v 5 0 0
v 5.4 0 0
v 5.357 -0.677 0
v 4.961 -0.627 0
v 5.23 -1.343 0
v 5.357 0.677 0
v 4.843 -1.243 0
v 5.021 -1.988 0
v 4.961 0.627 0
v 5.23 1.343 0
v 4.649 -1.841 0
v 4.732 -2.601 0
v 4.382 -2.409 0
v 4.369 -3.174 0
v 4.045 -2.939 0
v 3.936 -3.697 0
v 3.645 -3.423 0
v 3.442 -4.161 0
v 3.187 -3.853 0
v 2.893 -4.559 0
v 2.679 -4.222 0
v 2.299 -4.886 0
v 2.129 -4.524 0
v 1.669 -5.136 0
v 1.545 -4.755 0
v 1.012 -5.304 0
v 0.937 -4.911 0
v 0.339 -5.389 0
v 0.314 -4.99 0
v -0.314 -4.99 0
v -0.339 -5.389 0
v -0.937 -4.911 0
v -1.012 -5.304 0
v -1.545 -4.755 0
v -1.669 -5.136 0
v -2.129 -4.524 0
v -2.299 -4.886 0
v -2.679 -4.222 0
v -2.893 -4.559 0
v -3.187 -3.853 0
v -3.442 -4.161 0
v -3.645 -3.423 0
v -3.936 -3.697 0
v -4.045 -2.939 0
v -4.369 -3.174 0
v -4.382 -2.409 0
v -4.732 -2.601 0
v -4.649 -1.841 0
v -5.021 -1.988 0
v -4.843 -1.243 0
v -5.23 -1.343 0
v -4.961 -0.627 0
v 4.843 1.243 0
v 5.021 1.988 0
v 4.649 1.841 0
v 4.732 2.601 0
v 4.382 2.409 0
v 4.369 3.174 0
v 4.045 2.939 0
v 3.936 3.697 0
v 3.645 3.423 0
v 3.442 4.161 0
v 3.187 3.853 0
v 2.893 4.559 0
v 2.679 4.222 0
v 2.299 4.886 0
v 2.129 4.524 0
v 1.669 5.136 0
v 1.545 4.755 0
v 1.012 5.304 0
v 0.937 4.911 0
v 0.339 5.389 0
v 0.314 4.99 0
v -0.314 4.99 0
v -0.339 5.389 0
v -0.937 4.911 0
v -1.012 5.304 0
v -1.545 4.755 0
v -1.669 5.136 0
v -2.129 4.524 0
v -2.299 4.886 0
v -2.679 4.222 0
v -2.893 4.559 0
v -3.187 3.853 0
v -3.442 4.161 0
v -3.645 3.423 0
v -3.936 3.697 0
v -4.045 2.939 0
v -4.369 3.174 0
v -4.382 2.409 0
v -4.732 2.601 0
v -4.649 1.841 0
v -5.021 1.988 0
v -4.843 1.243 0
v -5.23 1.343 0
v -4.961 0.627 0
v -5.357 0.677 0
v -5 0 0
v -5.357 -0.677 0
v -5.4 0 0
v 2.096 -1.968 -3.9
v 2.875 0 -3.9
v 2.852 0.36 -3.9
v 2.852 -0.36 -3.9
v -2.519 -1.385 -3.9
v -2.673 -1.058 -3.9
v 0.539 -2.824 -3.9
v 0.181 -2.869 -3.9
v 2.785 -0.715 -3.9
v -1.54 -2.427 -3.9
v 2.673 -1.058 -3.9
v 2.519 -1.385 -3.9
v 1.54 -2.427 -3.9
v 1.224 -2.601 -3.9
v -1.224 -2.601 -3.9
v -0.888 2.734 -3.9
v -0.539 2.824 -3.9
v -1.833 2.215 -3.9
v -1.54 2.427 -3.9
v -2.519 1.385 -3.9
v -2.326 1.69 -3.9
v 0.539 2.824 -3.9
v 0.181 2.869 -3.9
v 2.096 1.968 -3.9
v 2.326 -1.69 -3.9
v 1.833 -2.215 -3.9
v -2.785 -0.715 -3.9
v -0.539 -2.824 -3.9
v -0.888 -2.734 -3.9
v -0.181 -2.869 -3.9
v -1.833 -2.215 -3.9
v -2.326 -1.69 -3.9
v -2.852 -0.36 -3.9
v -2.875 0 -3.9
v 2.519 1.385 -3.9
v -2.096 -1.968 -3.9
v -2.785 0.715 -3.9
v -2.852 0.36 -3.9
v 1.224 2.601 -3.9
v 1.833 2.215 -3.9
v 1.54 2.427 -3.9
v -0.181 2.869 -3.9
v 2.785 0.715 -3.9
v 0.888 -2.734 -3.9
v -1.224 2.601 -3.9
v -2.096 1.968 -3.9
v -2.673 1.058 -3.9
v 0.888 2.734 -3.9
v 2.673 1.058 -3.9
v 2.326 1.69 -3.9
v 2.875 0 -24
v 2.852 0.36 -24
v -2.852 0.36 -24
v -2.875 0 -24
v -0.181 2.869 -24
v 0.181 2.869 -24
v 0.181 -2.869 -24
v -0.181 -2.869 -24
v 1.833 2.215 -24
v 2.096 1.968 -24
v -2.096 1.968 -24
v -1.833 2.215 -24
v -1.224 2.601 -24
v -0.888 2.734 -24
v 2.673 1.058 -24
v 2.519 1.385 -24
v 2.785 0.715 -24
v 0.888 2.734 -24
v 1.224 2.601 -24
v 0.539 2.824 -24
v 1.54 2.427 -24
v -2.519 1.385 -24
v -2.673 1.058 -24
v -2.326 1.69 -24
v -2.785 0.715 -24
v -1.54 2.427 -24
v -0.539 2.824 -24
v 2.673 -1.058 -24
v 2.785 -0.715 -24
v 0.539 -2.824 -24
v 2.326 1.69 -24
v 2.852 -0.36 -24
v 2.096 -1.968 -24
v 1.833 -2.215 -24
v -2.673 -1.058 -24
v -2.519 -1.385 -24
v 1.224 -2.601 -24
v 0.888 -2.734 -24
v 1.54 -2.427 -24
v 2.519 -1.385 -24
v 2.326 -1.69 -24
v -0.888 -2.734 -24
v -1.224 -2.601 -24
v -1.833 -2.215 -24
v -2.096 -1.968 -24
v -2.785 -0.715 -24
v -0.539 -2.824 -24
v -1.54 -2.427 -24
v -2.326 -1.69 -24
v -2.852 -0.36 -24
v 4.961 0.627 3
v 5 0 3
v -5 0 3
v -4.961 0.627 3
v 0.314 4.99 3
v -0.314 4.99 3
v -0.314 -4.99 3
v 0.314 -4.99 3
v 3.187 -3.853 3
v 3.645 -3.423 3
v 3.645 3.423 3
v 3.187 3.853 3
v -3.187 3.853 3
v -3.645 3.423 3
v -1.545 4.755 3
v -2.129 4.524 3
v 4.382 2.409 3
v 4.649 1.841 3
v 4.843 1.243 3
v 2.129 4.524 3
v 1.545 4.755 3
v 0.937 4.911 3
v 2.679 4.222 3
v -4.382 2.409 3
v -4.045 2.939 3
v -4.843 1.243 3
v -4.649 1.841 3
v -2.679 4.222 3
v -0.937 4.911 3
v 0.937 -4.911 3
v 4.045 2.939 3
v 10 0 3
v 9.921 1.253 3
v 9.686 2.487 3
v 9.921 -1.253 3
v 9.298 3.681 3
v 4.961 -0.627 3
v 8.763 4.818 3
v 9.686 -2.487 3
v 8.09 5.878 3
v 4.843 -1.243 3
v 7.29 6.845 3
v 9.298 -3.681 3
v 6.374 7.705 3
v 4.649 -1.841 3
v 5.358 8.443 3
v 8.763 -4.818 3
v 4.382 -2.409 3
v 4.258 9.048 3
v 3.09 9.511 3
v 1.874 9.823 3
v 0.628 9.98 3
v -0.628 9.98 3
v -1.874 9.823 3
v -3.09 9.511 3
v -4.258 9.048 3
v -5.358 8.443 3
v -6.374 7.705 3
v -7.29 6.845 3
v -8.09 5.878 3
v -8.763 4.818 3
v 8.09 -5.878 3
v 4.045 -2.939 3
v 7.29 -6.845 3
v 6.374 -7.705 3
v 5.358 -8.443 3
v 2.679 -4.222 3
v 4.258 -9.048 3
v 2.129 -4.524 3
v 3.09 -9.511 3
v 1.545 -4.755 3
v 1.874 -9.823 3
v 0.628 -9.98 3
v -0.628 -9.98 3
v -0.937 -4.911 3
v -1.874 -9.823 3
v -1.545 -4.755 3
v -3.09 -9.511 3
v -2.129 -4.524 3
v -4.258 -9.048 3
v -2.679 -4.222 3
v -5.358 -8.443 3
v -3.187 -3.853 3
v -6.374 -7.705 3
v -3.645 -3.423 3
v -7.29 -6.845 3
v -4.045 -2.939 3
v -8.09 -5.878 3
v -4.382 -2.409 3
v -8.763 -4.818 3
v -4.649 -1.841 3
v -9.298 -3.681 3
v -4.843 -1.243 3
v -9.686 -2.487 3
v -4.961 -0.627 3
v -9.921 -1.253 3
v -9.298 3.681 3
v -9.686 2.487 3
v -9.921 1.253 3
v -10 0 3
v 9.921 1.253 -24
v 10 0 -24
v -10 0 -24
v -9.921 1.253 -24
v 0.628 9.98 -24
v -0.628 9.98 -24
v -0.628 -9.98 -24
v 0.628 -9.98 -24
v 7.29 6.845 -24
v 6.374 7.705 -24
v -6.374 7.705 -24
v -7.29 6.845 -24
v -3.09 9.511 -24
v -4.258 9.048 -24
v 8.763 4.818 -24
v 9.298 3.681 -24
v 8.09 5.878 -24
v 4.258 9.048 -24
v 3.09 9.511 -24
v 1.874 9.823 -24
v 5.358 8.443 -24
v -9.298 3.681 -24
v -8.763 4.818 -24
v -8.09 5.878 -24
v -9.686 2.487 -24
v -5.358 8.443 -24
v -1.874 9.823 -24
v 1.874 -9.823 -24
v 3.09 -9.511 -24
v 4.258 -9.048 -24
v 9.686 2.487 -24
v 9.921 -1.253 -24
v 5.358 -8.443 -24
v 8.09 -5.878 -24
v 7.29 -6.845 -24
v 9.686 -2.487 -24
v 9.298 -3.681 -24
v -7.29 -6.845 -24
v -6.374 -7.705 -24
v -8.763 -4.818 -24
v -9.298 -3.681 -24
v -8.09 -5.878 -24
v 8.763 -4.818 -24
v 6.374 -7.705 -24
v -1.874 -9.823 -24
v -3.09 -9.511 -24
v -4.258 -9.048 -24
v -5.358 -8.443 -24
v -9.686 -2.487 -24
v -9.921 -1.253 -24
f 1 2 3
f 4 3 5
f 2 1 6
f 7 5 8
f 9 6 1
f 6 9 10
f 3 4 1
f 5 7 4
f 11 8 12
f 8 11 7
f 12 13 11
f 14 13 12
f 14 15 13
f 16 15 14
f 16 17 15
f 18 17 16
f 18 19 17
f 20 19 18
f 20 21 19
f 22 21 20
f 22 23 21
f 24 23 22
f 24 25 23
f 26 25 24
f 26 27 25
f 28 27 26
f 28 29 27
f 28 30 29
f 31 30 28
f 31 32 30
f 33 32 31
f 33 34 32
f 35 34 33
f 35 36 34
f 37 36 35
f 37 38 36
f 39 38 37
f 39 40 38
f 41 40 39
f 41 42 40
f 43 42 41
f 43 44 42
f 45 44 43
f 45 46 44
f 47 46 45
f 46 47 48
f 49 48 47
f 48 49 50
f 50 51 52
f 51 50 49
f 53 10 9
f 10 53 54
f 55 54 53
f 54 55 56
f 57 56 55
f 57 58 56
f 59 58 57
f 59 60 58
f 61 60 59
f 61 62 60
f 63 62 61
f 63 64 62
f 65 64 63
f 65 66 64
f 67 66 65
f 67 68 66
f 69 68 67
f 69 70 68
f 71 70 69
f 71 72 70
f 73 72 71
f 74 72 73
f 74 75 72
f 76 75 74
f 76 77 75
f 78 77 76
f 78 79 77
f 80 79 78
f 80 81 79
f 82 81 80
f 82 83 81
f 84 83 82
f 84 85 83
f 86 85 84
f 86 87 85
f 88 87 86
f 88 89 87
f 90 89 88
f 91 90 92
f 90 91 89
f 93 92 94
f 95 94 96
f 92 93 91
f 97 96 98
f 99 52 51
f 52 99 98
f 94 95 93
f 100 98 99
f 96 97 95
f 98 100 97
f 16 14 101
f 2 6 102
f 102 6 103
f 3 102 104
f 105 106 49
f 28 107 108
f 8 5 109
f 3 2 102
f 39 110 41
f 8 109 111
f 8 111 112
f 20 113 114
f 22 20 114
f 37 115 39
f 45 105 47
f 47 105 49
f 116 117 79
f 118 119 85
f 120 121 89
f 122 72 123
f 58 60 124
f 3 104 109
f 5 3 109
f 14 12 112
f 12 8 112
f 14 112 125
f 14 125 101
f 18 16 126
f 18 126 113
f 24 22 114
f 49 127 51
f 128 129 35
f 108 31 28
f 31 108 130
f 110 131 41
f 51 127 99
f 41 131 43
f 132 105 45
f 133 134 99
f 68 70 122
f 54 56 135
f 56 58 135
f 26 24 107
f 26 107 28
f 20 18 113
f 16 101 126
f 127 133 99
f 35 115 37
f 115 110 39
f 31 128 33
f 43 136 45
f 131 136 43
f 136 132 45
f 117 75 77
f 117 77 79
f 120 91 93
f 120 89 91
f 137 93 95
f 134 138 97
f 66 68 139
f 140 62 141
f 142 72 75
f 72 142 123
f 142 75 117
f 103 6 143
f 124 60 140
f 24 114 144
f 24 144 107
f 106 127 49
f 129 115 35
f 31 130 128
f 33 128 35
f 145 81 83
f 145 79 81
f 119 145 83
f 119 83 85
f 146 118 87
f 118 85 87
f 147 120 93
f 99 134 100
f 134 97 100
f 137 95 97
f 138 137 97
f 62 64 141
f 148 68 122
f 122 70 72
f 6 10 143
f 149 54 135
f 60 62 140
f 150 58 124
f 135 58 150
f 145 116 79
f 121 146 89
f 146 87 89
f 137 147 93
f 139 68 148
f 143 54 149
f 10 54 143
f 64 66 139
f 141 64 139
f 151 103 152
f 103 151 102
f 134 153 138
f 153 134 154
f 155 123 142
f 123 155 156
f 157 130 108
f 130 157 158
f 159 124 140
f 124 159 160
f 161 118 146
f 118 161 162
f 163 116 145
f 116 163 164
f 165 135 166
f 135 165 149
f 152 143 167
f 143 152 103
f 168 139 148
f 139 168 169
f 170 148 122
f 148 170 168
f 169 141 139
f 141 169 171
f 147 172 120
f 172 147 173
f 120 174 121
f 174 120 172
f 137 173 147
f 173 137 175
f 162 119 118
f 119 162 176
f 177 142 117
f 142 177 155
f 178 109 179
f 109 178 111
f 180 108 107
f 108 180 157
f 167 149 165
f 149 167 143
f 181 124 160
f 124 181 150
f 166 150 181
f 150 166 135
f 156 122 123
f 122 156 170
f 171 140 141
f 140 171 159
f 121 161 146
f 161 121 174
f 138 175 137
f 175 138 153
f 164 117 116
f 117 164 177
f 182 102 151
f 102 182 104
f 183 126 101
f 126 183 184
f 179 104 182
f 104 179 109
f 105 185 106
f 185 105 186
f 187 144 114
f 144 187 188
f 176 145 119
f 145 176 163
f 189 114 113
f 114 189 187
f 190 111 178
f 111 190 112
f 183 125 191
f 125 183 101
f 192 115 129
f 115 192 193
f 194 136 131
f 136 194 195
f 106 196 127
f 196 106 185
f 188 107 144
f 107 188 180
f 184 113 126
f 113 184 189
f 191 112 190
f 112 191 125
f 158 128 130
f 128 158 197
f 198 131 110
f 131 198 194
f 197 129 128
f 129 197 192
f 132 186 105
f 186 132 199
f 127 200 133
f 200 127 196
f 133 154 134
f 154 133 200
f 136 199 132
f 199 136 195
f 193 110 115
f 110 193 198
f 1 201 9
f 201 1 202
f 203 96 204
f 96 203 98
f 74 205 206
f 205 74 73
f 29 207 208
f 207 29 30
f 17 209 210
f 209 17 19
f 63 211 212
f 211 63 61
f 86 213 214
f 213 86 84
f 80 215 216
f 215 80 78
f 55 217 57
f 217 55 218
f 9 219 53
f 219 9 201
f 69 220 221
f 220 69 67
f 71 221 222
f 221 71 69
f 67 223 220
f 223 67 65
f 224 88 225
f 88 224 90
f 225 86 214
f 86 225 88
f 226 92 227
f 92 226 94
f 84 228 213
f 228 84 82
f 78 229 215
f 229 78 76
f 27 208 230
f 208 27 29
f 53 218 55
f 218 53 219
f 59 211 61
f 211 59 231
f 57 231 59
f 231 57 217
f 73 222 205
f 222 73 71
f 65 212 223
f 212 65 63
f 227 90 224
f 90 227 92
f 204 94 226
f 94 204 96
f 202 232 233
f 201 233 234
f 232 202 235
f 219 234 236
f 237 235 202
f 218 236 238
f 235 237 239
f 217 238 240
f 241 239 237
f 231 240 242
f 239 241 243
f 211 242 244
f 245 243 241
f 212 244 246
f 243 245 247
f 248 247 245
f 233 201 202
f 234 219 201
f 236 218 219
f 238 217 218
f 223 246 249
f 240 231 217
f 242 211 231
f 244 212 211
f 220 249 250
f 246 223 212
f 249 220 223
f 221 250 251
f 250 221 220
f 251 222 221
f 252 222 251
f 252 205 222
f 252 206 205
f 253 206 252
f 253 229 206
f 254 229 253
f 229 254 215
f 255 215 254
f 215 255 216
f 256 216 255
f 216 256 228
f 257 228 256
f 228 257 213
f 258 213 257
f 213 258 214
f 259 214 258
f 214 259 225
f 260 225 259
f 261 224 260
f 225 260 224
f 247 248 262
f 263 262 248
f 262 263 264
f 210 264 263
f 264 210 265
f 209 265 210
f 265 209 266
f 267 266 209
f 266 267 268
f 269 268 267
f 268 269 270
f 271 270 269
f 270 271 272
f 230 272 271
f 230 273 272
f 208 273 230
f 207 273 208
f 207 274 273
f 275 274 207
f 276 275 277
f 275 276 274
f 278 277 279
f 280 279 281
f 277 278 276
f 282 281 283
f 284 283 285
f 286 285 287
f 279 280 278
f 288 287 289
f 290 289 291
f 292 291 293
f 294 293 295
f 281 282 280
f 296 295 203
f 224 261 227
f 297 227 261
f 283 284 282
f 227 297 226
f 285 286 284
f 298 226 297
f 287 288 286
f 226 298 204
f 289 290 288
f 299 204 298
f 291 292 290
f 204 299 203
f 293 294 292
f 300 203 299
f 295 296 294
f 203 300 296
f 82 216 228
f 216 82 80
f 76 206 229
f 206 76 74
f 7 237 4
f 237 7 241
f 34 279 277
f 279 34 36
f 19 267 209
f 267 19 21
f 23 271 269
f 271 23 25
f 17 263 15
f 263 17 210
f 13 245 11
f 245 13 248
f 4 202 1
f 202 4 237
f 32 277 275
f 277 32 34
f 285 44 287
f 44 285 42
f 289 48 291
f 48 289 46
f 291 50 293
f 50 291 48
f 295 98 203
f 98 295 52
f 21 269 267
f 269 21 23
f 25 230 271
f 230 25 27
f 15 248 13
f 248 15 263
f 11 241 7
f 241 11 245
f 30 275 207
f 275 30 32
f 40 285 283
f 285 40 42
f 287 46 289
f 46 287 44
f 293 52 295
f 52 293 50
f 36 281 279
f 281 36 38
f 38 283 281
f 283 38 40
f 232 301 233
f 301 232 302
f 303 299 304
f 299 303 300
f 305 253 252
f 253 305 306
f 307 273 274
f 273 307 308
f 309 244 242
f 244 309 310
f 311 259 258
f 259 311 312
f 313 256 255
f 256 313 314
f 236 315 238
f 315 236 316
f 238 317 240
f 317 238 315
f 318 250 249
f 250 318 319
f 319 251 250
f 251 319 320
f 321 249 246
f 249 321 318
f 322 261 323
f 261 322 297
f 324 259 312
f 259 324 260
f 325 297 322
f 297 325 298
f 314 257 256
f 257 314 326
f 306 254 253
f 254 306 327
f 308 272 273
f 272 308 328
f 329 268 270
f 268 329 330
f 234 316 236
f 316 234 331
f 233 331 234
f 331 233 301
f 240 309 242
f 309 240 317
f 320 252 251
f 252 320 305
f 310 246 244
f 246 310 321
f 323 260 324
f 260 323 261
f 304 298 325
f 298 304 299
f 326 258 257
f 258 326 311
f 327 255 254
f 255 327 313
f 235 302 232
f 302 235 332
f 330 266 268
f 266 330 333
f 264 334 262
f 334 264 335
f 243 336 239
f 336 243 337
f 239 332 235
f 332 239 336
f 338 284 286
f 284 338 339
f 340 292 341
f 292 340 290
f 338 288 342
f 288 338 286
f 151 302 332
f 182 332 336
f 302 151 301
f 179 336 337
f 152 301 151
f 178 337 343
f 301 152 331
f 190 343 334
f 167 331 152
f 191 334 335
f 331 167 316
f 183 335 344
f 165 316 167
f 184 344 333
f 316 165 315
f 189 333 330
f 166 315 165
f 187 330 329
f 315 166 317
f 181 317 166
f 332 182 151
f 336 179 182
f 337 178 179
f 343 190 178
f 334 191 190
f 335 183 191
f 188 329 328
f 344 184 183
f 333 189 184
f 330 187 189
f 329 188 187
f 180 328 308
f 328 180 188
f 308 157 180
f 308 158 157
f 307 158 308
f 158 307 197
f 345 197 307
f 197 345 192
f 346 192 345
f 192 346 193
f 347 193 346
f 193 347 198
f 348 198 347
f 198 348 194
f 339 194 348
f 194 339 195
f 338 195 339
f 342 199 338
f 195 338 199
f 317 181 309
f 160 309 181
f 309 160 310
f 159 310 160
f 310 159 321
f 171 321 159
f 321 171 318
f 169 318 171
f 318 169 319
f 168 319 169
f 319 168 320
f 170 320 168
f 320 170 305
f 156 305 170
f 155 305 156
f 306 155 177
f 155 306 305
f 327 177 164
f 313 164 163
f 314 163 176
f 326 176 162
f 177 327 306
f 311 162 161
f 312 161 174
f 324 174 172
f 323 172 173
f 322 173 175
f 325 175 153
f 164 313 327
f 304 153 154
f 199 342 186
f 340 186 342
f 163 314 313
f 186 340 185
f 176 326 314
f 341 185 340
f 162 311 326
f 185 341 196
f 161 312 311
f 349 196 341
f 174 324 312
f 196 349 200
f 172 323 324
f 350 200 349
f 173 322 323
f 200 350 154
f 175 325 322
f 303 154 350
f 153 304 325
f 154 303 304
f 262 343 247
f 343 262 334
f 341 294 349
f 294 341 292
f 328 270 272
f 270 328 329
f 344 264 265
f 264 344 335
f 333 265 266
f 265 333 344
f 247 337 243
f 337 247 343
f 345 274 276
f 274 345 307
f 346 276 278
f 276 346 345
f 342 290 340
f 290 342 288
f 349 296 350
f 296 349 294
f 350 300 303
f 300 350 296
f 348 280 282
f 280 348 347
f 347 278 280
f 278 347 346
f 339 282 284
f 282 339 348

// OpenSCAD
$fn = 50;

difference() {
	union() {
		translate(v = [0, 0, -24.0]) {
			cylinder(h = 27, r = 10.0);
		}
	}
	union() {
		translate(v = [0, 0, 0]) {
			rotate(a = [0, 0, 0]) {
				difference() {
					union() {
						translate(v = [0, 0, -27.0]) {
							cylinder(h = 27, r = 2.6);
						}
						translate(v = [0, 0, -3.9]) {
							cylinder(h = 3.9, r1 = 2.875, r2 = 5.4);
						}
						translate(v = [0, 0, -27.0]) {
							cylinder(h = 27, r = 2.875);
						}
						translate(v = [0, 0, -27.0]) {
							cylinder(h = 27, r = 2.6);
						}
					}
					union();
				}
			}
		}
		#cylinder(h = 3, r = 5.0);
	}
}
